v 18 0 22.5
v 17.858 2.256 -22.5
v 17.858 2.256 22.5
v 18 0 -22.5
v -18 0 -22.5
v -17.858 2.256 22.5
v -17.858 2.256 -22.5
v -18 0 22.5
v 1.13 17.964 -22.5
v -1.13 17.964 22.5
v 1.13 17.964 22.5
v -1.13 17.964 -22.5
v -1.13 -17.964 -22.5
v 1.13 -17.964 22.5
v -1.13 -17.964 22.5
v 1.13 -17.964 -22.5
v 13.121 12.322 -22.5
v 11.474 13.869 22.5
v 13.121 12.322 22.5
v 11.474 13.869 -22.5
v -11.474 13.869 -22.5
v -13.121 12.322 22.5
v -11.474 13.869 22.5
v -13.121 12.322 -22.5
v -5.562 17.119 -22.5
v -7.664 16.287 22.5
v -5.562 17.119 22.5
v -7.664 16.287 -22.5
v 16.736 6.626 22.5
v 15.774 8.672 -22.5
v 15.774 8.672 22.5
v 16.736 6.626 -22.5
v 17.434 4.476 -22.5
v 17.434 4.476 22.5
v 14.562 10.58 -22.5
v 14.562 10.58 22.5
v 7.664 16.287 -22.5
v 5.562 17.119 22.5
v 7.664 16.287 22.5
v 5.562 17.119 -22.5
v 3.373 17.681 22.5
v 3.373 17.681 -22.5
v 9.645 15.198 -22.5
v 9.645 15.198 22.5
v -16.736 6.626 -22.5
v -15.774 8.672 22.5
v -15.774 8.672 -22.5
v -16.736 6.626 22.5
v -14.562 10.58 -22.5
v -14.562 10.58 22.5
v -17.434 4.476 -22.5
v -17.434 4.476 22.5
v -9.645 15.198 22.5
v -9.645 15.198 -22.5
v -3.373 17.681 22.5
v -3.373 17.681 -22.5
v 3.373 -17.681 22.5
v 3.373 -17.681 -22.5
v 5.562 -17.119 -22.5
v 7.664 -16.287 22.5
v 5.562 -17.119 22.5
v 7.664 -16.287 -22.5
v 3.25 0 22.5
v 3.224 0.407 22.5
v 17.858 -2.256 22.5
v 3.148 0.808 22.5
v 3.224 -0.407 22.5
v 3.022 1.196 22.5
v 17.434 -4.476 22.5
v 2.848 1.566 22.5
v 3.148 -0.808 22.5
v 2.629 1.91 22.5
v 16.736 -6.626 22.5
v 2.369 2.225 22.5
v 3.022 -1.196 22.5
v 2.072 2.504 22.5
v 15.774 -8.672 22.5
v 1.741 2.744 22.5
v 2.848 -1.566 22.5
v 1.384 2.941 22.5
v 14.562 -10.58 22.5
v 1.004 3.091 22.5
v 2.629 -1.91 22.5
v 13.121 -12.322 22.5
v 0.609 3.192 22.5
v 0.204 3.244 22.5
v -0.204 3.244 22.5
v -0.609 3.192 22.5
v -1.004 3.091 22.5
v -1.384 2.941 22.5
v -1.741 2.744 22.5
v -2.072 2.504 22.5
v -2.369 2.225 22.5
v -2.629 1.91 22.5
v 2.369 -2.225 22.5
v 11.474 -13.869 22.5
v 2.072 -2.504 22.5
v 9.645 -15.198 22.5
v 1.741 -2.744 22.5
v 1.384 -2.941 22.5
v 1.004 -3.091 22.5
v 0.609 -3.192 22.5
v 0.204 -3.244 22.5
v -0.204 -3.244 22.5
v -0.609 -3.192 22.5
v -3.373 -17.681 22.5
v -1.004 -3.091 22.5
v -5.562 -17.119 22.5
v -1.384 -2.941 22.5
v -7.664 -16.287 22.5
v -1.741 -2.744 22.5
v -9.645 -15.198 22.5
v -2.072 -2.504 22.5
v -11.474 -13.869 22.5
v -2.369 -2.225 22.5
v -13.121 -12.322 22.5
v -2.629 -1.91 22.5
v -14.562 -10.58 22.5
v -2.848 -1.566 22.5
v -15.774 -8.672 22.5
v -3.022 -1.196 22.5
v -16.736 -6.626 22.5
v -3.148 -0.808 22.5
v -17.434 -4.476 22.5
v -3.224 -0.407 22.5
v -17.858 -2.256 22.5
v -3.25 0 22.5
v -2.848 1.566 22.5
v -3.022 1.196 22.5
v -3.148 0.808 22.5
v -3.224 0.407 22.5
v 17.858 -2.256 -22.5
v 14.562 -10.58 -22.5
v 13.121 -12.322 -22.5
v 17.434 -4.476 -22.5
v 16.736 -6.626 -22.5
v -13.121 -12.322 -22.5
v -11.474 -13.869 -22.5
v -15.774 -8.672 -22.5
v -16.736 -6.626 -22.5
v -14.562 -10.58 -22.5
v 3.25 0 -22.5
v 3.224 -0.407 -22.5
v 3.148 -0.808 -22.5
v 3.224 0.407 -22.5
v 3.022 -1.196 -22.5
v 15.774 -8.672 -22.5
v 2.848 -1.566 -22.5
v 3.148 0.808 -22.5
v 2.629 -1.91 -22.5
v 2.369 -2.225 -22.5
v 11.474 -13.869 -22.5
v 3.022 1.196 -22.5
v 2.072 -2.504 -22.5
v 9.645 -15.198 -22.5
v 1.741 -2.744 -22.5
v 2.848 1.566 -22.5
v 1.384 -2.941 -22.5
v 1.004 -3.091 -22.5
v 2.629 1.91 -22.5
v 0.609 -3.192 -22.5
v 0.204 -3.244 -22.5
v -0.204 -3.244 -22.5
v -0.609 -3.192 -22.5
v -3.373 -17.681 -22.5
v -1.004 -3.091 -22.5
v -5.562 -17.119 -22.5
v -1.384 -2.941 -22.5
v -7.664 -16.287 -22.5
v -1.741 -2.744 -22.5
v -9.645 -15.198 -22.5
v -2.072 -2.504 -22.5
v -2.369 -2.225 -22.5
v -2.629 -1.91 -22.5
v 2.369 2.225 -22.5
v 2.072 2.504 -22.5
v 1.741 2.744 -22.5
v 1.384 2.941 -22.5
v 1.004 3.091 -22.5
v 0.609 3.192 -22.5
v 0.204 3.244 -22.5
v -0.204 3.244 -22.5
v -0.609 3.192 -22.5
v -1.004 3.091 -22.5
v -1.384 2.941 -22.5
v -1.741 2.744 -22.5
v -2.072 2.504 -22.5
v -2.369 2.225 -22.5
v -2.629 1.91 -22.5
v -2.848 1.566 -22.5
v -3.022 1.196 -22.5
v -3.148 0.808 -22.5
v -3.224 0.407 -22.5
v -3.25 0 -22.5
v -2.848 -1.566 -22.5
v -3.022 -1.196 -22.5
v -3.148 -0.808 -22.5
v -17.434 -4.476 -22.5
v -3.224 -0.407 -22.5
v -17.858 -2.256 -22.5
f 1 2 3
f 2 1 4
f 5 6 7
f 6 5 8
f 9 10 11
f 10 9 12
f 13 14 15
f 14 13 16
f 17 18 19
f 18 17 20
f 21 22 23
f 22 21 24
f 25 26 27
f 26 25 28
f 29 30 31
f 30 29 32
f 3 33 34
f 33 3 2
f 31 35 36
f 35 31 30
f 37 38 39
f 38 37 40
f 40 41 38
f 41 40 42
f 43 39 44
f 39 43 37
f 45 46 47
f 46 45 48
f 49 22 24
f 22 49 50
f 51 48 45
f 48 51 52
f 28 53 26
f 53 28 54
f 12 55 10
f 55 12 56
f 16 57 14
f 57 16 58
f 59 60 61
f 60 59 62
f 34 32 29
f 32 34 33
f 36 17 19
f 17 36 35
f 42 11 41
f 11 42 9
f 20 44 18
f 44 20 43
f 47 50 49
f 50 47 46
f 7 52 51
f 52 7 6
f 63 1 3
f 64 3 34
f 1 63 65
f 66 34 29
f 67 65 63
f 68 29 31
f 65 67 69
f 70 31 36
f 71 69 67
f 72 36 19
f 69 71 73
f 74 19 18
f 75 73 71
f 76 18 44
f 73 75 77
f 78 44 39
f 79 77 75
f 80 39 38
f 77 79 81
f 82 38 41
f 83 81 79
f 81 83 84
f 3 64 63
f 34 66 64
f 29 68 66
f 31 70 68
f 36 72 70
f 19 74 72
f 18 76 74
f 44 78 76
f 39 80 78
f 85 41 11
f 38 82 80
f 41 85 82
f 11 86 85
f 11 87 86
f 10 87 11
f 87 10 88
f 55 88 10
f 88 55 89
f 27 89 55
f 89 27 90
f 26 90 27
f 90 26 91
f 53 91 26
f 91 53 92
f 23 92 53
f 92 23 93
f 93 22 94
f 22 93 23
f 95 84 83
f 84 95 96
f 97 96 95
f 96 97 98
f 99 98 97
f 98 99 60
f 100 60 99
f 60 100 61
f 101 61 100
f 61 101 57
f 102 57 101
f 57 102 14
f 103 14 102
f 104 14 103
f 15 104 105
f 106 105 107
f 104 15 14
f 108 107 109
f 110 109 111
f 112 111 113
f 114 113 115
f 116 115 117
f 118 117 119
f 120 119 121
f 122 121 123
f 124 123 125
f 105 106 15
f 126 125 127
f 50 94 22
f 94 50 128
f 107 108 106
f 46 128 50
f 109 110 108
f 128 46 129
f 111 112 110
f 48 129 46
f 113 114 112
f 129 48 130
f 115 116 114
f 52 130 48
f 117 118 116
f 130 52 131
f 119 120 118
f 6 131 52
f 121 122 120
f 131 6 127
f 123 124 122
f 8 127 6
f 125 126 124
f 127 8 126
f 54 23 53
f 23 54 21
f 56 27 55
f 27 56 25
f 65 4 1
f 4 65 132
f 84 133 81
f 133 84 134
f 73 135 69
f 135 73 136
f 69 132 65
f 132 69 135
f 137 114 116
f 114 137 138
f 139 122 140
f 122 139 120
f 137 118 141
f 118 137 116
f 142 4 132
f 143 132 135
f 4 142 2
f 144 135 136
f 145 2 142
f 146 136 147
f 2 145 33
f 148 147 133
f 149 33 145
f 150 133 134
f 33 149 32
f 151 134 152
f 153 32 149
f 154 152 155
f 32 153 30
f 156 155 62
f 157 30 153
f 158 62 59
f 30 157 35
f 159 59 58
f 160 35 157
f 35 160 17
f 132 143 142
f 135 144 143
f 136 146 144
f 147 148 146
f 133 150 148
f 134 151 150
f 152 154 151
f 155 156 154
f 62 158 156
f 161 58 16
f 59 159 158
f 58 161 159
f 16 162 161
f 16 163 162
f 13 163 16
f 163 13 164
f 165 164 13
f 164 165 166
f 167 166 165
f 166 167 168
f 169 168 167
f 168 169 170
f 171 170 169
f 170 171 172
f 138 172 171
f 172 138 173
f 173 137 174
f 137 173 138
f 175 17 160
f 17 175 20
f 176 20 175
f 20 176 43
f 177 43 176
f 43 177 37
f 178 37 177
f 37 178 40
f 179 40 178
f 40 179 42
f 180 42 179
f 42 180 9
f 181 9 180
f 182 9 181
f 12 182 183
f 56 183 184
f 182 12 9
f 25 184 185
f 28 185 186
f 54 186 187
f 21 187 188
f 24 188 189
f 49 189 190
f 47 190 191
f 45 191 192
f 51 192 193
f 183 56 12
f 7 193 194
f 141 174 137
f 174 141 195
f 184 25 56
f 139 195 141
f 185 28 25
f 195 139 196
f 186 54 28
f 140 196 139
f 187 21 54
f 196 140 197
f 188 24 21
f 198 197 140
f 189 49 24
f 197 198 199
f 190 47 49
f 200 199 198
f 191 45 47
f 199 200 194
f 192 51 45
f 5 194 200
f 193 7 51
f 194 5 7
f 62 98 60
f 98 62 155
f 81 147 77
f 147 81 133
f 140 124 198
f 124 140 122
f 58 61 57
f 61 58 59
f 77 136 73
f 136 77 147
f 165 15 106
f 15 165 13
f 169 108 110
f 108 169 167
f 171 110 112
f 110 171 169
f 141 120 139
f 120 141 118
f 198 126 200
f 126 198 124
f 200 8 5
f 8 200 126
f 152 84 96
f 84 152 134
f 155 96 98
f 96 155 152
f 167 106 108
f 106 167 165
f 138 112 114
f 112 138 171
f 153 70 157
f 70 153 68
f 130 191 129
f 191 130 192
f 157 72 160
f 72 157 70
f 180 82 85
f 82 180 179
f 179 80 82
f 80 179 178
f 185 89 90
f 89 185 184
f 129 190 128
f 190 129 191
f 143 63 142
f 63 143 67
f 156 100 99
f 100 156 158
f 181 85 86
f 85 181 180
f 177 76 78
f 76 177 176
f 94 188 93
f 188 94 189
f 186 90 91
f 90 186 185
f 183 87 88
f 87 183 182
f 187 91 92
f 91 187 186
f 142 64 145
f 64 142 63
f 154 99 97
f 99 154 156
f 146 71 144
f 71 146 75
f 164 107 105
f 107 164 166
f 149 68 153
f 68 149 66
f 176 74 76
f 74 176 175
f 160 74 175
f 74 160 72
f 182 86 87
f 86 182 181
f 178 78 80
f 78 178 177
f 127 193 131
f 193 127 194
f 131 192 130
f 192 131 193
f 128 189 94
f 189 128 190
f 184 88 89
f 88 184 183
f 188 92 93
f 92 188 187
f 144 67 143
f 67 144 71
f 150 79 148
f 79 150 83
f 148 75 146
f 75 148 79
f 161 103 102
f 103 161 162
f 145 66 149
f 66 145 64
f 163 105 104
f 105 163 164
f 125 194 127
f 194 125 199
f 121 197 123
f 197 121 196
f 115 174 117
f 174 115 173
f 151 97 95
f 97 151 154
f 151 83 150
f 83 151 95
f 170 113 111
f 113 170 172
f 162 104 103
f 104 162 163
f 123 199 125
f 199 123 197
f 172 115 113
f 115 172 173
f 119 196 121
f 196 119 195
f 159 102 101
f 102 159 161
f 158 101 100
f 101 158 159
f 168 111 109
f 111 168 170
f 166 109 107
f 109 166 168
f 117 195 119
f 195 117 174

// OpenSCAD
$fn = 50;


difference() {
	union() {
		translate(v = [0, 0, -22.5000000000]) {
			cylinder(h = 45, r = 18.0000000000);
		}
	}
	union() {
		translate(v = [0, 0, -100.0000000000]) {
			cylinder(h = 200, r = 3.2500000000);
		}
	}
}
